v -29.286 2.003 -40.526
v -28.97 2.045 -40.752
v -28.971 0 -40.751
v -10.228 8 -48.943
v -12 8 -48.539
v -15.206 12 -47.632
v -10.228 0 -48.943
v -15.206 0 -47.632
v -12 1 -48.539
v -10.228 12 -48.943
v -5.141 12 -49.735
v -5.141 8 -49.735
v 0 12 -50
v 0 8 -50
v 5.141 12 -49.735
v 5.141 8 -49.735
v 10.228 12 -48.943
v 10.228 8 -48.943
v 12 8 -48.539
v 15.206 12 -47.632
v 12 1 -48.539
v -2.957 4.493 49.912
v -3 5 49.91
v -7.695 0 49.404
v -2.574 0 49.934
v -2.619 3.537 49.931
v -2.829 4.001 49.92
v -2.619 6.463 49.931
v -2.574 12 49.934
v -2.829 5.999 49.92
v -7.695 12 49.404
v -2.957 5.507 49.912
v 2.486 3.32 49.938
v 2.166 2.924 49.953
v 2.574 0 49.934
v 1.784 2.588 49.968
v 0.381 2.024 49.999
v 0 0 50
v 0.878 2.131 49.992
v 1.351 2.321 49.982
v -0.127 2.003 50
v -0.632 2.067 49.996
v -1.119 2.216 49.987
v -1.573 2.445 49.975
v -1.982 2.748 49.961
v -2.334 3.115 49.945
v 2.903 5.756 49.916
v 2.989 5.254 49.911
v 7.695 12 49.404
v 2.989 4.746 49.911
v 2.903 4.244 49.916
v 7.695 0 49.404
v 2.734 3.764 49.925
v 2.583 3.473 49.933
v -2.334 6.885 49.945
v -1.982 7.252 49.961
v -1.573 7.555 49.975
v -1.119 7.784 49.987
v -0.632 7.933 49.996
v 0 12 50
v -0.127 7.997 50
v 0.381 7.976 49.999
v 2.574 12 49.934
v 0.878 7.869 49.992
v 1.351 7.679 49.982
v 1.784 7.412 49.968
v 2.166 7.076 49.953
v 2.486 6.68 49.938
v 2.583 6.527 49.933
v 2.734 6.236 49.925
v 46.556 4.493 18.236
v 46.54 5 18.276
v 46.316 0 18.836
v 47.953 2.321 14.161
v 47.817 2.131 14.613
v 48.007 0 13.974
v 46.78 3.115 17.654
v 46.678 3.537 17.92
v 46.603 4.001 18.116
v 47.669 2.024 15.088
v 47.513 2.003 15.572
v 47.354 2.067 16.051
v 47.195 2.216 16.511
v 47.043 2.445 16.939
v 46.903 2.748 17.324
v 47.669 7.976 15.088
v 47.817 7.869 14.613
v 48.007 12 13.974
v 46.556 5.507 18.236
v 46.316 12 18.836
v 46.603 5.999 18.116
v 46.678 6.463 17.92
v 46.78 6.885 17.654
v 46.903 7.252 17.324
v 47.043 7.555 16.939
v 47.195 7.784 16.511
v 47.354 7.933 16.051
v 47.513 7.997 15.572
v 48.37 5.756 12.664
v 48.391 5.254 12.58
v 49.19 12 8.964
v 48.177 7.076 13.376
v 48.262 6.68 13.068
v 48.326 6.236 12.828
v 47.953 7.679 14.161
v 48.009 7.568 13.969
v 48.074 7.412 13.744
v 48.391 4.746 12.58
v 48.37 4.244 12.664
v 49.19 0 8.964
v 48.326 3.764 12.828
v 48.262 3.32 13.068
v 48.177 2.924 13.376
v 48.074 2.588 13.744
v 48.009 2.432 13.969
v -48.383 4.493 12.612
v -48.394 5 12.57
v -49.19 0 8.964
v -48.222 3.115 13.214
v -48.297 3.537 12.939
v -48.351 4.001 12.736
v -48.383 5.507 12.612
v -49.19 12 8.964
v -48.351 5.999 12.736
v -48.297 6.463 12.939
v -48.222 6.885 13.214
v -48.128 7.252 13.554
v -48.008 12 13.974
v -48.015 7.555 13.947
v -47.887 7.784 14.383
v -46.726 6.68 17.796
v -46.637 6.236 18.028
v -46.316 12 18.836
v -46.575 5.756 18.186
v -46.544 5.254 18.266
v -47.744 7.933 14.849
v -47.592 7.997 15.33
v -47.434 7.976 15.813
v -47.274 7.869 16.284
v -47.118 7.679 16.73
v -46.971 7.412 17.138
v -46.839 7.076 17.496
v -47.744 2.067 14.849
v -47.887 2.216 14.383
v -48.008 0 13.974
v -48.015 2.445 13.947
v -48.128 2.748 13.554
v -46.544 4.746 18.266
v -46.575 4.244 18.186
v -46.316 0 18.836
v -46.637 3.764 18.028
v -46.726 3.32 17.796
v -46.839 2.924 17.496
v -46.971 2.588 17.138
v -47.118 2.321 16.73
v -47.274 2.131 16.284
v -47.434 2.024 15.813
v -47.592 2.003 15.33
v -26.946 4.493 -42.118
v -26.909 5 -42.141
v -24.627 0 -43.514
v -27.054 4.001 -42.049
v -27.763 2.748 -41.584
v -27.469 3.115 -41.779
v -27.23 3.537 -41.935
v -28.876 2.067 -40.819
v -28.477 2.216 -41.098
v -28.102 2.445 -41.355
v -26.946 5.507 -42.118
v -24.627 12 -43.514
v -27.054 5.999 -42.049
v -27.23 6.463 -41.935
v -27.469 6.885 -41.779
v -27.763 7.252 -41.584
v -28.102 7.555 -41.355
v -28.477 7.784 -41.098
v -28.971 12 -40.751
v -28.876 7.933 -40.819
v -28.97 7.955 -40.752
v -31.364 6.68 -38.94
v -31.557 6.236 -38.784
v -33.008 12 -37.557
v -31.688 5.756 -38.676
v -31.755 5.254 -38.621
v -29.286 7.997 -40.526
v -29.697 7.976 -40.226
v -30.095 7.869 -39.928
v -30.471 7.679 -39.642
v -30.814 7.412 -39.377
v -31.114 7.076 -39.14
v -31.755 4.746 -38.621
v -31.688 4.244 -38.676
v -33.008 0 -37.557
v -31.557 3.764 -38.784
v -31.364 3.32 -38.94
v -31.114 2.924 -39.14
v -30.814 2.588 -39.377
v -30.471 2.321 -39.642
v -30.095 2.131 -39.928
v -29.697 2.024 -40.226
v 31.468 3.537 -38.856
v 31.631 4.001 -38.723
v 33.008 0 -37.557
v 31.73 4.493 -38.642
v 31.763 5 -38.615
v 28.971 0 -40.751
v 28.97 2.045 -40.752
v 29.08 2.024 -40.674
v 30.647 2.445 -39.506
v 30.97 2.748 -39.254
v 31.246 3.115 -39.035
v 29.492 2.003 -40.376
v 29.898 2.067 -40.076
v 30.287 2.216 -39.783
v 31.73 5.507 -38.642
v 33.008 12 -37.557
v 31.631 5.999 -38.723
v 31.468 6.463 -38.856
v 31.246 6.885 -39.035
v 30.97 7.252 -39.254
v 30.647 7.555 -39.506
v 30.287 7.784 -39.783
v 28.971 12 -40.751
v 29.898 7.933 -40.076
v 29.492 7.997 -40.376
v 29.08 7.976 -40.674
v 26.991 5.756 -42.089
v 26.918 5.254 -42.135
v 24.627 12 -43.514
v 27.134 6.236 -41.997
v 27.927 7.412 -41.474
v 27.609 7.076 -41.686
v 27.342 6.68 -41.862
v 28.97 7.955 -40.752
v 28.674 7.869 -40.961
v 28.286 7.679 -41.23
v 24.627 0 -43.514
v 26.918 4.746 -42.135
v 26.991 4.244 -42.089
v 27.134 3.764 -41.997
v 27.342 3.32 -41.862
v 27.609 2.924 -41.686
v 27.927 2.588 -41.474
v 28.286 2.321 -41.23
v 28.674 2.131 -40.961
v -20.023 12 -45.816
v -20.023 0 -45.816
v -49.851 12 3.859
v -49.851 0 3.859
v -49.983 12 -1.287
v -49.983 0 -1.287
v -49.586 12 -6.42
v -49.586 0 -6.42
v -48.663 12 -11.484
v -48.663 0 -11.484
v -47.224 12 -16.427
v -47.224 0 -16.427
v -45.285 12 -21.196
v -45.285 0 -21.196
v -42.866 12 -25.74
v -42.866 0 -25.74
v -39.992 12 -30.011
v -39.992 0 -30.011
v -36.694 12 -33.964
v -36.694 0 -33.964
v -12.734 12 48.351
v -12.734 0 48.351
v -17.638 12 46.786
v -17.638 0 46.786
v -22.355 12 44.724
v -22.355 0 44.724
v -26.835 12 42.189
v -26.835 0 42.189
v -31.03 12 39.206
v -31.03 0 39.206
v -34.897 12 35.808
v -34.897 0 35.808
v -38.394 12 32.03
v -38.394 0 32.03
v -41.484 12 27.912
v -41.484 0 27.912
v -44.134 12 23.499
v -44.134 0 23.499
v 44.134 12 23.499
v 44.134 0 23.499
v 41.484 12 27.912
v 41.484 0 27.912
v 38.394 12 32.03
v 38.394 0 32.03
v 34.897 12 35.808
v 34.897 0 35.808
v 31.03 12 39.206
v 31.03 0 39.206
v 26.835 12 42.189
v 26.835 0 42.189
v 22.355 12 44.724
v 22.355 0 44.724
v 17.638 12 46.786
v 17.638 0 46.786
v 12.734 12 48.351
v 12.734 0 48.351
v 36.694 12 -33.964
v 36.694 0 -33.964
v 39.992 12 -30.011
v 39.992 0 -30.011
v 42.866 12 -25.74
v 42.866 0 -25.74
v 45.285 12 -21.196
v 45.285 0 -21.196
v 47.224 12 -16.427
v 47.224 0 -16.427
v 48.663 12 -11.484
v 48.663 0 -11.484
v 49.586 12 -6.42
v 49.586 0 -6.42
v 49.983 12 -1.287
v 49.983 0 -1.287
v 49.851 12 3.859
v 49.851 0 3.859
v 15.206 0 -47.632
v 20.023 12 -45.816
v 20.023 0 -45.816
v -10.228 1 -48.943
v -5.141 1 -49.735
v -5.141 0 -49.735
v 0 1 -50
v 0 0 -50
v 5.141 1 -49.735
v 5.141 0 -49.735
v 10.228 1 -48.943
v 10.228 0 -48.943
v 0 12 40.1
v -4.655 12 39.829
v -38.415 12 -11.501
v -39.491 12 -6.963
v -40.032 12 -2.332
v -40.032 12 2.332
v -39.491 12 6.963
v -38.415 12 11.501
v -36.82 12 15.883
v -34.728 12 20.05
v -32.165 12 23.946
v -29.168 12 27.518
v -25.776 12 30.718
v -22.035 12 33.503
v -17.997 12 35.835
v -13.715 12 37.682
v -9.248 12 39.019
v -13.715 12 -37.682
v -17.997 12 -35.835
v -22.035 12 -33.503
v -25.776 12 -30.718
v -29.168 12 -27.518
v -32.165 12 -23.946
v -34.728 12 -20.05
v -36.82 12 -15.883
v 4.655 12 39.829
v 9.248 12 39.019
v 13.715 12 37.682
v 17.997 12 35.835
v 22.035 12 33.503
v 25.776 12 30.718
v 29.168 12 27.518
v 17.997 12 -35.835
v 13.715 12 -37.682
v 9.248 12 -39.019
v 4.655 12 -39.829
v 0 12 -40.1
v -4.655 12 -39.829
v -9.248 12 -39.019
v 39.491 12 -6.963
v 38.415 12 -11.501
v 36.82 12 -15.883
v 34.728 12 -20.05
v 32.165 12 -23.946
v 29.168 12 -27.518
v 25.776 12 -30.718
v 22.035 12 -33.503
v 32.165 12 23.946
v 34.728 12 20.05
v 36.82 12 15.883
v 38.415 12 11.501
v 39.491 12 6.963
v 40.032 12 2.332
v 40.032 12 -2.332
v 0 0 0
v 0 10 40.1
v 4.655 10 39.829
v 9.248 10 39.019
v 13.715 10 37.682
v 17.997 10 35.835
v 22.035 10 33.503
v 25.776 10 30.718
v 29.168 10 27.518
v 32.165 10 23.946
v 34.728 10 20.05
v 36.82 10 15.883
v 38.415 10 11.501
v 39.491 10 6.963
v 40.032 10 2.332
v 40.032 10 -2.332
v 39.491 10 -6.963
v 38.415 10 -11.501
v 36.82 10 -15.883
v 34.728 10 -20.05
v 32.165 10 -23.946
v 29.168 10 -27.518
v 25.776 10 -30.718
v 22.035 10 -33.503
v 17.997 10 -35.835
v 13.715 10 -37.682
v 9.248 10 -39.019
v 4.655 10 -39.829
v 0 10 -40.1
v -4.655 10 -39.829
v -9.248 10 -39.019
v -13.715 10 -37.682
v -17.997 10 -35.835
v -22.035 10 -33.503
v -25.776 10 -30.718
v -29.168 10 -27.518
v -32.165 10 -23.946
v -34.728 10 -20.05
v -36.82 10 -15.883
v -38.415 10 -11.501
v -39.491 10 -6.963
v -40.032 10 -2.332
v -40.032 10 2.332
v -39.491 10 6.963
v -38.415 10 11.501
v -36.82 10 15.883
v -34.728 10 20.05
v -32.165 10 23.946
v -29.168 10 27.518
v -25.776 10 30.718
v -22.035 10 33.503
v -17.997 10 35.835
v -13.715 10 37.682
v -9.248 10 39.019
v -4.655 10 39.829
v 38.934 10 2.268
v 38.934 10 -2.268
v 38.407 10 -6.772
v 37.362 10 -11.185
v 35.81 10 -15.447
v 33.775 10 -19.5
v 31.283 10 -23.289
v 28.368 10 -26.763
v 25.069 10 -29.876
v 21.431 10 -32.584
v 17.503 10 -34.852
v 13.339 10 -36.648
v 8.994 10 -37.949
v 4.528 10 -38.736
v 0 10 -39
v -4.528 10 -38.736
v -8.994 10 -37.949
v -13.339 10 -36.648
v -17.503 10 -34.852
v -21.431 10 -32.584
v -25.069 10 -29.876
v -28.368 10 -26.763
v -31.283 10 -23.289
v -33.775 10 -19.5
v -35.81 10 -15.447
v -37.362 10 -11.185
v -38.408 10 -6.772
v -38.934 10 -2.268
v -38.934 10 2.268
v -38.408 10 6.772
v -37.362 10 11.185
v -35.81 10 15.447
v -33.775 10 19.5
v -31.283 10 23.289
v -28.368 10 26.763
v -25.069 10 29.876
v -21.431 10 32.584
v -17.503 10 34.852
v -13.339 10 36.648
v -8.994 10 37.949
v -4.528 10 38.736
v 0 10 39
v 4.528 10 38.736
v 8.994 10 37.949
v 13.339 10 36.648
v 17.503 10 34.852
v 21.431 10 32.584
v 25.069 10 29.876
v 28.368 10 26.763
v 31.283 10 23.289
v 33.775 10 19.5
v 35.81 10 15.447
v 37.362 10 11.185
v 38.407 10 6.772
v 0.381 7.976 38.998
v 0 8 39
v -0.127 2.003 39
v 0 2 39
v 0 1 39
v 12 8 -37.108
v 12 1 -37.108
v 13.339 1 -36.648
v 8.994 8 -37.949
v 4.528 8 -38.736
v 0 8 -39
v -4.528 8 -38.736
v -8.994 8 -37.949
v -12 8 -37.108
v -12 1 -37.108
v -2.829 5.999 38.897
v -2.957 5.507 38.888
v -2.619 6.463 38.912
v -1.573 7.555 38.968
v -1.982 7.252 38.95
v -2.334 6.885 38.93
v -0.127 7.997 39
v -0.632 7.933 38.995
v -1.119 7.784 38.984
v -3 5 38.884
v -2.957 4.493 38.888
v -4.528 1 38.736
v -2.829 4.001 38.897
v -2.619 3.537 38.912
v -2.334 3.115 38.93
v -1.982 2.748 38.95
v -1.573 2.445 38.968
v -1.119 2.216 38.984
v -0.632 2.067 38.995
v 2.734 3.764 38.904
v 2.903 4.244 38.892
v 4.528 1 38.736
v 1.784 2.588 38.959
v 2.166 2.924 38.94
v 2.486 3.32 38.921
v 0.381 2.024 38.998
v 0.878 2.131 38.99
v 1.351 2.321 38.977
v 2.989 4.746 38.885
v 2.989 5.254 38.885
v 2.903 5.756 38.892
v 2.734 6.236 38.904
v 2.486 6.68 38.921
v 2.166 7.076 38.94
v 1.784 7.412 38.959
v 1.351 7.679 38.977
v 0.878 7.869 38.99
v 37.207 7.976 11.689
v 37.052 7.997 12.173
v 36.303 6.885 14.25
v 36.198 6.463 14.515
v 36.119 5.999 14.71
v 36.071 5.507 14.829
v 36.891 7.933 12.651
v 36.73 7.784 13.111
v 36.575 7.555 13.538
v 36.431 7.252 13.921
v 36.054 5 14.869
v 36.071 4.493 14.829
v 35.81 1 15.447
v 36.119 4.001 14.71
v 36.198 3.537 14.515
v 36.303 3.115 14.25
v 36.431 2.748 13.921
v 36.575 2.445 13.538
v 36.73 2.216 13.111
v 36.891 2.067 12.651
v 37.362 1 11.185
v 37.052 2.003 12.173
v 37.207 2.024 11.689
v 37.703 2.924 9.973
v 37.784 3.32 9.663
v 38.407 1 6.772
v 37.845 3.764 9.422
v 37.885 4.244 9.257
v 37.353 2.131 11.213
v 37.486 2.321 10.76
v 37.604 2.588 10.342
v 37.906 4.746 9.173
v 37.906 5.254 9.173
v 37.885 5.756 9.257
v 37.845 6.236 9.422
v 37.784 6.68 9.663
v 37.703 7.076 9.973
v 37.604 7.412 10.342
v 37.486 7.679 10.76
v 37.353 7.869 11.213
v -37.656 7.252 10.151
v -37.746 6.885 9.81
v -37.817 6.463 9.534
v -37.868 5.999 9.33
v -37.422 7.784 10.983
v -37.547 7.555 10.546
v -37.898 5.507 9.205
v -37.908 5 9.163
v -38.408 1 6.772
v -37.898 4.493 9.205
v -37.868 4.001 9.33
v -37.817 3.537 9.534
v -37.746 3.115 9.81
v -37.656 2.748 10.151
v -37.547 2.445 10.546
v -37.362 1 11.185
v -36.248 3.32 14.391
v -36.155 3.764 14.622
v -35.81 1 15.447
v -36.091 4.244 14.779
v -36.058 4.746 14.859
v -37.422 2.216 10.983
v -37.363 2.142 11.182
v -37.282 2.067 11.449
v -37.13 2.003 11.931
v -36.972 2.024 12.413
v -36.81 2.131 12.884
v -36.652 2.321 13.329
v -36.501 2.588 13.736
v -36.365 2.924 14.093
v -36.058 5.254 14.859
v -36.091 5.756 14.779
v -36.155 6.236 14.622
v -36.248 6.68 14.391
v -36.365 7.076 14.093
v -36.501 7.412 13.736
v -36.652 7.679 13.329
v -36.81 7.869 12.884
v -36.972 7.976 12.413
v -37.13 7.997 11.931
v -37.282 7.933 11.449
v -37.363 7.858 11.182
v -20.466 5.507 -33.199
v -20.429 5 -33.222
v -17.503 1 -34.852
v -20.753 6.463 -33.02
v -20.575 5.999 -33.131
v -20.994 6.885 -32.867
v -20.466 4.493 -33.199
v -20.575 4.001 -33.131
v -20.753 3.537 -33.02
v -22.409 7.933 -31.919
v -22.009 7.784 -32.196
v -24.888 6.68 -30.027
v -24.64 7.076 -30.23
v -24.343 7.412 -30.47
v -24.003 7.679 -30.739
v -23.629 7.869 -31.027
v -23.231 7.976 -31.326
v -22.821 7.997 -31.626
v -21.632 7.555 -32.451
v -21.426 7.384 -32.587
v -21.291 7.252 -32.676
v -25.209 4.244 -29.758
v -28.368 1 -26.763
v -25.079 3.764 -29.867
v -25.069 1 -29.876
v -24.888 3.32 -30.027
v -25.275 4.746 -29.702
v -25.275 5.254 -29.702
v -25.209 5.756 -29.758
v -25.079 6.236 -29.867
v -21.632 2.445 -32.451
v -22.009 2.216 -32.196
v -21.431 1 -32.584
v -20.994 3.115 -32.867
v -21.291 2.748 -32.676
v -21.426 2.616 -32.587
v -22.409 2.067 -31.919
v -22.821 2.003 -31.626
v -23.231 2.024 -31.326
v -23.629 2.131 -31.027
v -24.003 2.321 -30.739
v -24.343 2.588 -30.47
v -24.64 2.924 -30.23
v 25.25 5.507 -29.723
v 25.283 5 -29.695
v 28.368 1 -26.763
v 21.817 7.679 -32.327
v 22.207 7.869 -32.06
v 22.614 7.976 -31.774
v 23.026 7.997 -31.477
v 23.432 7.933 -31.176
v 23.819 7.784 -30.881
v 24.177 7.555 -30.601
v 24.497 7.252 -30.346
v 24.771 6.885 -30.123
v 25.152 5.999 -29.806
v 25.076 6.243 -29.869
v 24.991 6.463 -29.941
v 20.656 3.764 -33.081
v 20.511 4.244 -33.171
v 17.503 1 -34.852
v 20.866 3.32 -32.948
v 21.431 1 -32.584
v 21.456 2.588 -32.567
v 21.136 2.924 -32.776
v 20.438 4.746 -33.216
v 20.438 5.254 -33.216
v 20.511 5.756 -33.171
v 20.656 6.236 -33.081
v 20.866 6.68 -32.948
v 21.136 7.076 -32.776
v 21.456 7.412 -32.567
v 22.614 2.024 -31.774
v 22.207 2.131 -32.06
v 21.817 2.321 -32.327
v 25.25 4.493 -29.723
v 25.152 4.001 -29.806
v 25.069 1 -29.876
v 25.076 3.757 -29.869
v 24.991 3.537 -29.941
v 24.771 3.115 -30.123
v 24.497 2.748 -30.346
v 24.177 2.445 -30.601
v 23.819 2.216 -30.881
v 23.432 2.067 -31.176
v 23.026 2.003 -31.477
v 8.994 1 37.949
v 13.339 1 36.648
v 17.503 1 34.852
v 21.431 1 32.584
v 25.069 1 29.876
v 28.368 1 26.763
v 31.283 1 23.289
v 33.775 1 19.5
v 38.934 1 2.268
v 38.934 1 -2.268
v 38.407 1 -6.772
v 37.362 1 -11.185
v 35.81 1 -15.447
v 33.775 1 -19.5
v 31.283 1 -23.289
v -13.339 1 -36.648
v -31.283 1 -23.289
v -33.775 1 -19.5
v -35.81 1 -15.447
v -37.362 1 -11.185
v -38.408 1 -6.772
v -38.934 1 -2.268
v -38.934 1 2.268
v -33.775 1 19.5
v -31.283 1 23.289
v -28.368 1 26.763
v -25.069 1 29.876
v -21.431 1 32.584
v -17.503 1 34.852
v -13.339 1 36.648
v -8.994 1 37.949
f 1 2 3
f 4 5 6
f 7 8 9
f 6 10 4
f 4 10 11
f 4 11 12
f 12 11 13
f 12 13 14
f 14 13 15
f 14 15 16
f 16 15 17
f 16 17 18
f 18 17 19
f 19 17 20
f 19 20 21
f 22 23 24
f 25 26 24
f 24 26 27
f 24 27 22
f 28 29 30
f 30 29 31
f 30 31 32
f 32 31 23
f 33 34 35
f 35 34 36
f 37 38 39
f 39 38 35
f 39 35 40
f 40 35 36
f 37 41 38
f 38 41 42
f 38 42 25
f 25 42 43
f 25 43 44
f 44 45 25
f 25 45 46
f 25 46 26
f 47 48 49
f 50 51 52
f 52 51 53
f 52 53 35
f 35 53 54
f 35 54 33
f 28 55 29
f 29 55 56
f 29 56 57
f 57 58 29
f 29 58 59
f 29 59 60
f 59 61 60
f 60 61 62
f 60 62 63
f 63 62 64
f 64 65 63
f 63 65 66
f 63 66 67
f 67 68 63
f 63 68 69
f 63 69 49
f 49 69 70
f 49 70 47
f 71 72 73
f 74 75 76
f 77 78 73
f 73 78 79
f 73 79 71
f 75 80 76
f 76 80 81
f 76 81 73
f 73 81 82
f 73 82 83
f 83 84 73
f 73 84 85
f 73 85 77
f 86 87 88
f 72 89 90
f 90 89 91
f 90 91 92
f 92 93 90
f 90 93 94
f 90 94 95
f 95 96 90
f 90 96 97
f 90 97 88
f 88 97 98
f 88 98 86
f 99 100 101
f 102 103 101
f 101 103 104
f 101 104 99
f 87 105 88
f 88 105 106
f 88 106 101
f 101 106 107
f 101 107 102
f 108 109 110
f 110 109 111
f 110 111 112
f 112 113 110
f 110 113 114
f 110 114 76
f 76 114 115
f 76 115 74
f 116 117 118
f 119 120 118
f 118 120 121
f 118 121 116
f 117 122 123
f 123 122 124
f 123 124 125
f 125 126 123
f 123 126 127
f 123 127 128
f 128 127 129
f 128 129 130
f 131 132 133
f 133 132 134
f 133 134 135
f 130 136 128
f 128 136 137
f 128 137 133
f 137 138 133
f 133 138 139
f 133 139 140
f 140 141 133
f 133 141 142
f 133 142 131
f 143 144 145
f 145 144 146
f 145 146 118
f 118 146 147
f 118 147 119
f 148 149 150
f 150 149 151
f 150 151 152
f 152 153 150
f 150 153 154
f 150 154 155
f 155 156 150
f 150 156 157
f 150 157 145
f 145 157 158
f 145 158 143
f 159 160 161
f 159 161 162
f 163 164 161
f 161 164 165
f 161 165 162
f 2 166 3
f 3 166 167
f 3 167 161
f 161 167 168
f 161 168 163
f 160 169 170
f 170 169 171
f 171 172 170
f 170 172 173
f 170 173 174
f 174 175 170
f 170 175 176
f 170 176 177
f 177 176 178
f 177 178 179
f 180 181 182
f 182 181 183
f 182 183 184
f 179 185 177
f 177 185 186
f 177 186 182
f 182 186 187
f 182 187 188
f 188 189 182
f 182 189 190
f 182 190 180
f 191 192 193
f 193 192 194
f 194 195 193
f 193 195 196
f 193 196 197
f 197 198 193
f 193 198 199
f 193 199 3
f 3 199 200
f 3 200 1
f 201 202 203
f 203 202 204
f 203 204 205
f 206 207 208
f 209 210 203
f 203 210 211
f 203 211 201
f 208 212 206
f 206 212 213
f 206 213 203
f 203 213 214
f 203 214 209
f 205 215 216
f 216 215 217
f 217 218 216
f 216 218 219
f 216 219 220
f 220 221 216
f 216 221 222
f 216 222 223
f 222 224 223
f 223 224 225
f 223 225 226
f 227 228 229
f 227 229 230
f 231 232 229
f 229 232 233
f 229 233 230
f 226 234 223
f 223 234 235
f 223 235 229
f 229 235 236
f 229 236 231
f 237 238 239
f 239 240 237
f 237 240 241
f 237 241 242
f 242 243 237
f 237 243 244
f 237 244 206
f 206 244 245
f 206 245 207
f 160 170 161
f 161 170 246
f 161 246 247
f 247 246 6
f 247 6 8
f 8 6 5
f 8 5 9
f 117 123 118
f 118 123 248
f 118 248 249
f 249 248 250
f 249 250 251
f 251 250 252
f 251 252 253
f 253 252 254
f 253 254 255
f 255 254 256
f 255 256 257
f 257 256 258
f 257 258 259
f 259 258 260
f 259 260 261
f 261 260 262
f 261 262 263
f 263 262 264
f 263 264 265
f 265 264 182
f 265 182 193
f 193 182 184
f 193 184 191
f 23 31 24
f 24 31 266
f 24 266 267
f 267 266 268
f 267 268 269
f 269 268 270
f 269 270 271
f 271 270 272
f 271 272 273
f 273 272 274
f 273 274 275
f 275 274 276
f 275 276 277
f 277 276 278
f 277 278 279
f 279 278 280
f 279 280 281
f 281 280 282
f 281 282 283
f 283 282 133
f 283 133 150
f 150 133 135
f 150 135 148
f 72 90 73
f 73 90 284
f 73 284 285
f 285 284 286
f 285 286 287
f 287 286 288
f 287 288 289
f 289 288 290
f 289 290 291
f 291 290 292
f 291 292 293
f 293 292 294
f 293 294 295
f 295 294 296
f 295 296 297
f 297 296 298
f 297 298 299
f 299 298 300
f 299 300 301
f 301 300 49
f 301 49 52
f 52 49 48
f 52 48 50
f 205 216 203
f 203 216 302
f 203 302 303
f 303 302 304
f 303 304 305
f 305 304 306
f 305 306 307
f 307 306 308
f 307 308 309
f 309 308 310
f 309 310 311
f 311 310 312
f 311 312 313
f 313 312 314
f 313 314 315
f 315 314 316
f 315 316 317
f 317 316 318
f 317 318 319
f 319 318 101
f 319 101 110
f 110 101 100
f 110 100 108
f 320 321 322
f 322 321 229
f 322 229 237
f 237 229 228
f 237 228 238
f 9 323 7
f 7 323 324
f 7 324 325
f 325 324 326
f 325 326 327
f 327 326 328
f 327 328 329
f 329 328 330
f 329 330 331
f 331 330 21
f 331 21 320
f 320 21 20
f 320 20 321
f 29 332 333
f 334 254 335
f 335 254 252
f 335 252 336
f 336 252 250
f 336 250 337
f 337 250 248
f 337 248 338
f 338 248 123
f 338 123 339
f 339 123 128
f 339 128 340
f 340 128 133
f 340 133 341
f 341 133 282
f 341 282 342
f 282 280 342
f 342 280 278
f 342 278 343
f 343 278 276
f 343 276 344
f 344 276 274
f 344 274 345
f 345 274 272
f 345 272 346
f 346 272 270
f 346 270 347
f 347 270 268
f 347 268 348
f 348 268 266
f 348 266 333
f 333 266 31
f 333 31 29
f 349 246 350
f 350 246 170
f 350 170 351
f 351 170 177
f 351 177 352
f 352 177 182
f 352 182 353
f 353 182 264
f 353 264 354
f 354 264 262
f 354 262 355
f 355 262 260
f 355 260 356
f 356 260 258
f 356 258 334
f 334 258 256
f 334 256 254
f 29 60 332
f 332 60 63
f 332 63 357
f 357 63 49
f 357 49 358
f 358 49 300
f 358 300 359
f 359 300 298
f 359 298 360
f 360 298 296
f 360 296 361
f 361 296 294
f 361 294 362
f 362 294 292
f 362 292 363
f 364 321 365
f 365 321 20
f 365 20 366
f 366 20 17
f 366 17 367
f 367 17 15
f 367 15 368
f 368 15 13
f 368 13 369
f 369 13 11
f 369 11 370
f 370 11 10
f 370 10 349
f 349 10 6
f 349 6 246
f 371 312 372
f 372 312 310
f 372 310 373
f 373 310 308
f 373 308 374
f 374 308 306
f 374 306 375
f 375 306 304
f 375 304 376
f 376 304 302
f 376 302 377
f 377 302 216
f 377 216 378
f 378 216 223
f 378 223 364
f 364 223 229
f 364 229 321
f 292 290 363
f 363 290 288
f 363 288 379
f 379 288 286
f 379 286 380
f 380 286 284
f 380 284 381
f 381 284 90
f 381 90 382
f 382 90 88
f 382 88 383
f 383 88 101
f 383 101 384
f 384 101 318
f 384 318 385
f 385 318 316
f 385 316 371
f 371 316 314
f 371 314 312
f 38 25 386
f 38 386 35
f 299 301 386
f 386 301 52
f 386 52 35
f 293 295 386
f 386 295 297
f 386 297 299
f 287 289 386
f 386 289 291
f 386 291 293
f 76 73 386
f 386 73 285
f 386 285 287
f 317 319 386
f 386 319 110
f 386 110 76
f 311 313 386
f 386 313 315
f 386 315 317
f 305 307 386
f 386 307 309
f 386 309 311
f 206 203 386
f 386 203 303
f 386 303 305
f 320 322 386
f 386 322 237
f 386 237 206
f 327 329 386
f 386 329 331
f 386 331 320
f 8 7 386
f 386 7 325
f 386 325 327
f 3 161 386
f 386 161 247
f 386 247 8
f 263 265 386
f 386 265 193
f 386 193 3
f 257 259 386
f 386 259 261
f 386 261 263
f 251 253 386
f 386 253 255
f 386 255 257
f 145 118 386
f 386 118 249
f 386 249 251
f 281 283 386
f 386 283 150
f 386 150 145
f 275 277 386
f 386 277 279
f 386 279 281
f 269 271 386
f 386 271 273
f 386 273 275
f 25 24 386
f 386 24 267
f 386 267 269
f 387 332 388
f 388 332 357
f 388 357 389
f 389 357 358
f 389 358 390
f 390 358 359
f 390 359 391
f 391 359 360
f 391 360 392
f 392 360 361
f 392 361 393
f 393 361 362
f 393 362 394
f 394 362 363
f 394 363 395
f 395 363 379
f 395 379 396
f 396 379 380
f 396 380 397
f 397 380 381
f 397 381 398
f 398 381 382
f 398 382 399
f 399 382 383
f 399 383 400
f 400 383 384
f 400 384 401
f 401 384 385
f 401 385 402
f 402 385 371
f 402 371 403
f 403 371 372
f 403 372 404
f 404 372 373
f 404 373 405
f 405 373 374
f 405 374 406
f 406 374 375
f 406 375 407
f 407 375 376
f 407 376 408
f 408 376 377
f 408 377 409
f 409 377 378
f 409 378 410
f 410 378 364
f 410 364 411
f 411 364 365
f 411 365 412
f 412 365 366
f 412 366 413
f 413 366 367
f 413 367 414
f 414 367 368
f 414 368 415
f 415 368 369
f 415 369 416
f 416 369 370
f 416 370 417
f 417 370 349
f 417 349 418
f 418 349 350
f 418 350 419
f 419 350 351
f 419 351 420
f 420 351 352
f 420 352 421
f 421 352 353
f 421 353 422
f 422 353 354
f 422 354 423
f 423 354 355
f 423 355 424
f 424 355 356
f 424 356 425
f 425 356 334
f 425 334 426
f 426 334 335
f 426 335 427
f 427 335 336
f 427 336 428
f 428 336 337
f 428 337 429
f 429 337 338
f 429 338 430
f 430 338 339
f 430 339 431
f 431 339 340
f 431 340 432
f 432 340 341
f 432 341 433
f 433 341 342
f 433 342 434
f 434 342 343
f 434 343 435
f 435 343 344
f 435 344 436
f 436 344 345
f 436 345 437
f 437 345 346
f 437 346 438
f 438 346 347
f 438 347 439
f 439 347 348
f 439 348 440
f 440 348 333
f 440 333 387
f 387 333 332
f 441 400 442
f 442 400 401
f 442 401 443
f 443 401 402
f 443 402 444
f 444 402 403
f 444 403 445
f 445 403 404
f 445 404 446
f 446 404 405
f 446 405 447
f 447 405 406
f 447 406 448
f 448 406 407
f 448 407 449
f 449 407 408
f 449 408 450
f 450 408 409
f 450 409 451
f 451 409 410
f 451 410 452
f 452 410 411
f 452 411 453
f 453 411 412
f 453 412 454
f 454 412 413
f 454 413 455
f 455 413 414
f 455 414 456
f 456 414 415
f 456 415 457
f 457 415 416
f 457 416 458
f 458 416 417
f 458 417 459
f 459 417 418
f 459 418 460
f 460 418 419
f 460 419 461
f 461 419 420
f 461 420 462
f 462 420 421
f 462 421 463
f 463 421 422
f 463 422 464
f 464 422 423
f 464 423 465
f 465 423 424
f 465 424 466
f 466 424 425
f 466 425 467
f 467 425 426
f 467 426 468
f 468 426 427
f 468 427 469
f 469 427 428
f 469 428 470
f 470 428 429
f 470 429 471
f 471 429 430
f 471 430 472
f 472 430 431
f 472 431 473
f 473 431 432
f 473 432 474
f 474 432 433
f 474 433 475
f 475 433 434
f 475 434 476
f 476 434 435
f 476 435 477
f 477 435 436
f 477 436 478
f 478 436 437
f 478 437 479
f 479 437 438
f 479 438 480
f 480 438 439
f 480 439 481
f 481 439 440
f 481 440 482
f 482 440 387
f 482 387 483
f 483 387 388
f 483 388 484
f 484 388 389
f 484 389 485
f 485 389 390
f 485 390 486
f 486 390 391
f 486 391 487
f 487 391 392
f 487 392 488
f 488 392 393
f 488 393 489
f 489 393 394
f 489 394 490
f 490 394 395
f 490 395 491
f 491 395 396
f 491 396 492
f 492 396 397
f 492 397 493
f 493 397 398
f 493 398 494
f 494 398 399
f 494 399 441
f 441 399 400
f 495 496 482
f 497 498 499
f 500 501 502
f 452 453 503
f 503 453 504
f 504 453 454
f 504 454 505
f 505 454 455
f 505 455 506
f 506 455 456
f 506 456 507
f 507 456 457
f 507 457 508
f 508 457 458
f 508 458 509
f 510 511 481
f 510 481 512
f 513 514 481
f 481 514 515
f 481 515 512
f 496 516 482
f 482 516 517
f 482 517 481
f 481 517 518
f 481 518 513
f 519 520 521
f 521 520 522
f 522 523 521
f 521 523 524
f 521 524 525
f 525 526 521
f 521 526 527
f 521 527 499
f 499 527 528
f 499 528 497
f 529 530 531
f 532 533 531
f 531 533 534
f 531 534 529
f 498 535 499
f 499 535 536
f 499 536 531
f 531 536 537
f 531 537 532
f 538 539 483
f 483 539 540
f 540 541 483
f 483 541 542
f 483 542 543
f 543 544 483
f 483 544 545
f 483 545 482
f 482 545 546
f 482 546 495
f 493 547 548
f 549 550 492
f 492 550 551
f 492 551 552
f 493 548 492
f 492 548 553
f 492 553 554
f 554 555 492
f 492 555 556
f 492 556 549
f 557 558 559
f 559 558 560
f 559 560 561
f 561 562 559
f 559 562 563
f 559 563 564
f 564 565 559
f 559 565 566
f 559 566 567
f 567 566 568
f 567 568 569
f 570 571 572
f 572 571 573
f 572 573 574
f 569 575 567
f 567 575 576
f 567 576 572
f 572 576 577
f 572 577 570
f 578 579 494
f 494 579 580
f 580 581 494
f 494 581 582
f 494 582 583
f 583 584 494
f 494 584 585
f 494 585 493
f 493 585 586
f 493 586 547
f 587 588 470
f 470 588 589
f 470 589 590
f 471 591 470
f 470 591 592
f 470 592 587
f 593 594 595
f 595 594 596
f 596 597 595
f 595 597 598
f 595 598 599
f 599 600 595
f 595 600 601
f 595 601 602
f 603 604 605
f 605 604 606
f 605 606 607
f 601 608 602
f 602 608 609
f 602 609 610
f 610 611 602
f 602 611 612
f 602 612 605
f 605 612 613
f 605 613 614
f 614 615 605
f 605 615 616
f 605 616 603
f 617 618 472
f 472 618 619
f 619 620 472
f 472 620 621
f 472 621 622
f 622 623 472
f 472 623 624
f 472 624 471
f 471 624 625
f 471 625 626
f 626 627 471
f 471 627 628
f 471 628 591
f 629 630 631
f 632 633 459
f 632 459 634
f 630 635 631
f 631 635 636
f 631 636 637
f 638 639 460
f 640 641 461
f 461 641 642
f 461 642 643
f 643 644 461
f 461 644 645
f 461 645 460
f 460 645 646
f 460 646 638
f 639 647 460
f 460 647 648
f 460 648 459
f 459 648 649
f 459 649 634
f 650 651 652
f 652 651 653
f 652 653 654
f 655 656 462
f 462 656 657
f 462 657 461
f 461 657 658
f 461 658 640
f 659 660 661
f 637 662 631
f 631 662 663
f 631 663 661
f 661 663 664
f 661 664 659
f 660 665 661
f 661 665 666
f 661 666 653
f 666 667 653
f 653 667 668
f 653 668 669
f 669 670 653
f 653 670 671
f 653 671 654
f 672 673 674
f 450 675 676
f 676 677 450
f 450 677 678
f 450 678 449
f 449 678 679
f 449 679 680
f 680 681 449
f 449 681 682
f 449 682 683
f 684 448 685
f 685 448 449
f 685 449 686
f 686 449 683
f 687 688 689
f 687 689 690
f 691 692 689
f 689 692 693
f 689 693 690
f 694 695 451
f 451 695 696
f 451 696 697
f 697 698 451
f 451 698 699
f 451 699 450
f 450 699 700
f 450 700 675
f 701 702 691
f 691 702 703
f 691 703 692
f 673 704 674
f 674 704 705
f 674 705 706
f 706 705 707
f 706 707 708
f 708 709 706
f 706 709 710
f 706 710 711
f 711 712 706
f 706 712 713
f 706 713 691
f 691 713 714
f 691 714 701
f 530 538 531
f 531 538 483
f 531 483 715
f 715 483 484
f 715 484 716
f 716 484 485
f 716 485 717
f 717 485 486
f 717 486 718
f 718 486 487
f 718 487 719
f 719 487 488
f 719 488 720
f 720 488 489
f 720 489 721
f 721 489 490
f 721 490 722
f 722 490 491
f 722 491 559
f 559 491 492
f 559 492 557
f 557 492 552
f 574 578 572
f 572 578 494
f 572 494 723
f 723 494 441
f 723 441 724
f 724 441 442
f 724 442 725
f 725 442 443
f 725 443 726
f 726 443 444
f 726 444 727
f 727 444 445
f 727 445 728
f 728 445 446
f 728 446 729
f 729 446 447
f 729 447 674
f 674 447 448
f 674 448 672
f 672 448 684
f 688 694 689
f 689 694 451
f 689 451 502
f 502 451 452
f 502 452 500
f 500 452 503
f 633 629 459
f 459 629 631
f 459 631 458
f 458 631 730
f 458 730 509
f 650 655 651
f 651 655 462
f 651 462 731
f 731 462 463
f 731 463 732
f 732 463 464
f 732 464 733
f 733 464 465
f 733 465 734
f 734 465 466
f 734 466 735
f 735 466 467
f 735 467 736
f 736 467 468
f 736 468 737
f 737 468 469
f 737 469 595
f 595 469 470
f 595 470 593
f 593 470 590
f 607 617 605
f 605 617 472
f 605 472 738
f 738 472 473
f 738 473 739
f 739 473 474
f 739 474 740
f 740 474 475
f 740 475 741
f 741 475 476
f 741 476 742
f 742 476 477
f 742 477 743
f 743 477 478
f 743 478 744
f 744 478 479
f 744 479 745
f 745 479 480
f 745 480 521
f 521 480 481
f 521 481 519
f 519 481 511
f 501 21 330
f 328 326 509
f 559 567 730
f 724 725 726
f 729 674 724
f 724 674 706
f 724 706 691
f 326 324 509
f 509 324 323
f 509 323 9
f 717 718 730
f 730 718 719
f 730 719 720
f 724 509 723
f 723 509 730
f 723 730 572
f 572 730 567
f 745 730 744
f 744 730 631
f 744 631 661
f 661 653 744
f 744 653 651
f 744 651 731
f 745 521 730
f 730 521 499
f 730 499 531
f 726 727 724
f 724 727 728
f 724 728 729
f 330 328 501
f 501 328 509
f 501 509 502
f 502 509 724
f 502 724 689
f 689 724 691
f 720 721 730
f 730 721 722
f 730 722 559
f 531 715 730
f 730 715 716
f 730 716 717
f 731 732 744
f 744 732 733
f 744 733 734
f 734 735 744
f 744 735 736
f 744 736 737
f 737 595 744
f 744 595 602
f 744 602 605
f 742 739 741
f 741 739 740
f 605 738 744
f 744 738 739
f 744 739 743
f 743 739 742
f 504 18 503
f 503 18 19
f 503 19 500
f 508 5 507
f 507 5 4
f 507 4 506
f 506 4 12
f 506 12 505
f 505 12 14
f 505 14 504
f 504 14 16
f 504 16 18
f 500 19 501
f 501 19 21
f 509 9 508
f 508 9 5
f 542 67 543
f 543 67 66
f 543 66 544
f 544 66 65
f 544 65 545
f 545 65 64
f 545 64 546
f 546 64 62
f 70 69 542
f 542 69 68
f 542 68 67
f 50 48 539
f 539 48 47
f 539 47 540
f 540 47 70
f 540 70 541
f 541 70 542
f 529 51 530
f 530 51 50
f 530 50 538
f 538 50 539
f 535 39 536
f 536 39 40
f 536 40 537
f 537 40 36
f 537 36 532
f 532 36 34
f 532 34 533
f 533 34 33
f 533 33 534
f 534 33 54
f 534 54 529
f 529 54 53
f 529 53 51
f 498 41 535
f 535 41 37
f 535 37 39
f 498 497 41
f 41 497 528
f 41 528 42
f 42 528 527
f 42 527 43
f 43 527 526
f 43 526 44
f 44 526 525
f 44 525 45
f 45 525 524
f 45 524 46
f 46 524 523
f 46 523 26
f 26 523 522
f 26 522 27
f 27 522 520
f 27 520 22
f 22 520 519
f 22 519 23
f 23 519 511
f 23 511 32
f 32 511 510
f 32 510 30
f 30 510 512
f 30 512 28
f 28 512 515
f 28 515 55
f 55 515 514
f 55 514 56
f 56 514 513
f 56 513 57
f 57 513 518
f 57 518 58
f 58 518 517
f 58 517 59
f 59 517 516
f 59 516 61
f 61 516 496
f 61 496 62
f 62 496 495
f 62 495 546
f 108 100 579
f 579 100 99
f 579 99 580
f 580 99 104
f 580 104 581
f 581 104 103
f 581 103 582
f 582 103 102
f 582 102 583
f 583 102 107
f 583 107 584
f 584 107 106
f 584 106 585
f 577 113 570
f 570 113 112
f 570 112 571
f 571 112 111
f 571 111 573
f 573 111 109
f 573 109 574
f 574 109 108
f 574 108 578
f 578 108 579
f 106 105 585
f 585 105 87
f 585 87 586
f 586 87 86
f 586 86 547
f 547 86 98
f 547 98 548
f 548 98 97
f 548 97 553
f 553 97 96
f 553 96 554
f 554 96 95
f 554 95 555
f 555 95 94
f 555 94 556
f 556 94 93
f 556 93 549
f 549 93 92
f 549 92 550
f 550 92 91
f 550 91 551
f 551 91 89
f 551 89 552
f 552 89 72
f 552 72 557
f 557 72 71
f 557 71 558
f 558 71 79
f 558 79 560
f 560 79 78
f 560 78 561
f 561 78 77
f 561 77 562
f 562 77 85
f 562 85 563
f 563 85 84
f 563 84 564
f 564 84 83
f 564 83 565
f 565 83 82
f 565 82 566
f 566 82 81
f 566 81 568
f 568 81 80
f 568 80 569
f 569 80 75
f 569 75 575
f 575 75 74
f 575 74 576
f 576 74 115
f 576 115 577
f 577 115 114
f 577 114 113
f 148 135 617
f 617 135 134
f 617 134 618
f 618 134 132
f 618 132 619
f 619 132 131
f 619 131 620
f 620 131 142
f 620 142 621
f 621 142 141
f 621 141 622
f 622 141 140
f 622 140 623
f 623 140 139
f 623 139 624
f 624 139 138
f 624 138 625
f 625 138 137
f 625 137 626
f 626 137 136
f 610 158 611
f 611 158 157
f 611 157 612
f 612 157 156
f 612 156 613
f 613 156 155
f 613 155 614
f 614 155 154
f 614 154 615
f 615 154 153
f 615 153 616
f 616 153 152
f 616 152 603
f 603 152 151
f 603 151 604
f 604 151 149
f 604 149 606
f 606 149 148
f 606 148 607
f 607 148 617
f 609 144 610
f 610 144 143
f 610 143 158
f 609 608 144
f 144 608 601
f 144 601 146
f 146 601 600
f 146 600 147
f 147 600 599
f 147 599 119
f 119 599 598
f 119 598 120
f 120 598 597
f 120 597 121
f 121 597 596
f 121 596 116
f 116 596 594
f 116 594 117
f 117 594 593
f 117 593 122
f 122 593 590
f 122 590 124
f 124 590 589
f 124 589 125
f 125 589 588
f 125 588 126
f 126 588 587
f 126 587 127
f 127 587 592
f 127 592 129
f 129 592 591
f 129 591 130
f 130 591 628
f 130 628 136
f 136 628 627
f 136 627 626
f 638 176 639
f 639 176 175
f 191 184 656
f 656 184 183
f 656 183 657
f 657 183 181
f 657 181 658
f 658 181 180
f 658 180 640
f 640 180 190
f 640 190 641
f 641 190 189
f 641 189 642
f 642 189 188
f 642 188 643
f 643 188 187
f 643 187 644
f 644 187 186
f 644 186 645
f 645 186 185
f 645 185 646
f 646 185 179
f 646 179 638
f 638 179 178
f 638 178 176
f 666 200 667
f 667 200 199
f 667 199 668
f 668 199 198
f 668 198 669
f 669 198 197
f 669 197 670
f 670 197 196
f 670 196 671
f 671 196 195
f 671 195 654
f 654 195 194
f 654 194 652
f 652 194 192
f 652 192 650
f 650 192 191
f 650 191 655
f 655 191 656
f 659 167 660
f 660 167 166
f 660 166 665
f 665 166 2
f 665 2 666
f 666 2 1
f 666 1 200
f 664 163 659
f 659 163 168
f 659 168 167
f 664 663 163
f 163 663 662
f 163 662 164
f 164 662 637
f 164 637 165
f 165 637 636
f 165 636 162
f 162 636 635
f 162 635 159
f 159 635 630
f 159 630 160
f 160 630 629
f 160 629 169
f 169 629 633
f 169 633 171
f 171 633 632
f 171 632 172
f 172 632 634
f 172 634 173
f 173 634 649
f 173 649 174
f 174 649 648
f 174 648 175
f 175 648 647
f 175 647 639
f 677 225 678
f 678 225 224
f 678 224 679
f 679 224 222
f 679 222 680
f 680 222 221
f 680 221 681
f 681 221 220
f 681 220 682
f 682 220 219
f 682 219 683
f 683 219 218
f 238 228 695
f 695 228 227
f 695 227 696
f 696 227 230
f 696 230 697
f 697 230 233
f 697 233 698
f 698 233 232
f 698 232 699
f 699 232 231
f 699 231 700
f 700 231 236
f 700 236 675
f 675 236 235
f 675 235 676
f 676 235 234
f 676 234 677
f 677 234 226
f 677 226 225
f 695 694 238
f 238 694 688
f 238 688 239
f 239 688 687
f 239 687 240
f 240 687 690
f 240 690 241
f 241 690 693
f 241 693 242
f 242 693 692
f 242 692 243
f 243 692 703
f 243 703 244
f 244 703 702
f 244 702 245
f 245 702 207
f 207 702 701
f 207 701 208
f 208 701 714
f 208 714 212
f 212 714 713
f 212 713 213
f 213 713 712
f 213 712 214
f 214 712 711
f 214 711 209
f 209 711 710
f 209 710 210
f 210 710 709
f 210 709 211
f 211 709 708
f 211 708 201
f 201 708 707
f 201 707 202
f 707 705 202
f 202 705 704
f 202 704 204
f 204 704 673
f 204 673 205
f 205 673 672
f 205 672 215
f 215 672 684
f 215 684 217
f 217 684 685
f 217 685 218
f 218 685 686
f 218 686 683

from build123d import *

# Parameters (mm, degrees)
SKETCH1_R           = 50
BOSS_EXTRUDE1_DEPTH = 12
SKETCH3_R           = 40.1
CUT_EXTRUDE1_DEPTH  = 2
SKETCH4_R           = 39
CUT_EXTRUDE2_DEPTH  = 9
SKETCH6_W           = 24
SKETCH6_H           = 7
CUT_EXTRUDE4_DEPTH  = 61
SKETCH7_R           = 3
CUT_EXTRUDE5_DEPTH  = 61
CIRPATTERN1_COUNT   = 5


with BuildPart() as part:
    # Sketch1 → Boss-Extrude1 (new body)
    with BuildSketch(Plane(origin=(0, 0, 0), x_dir=(1, 0, 0), z_dir=(0, 1, 0))):
        with Locations(Location((0, 0, 0), (0, 0, 270))):
            Circle(SKETCH1_R)
    extrude(amount=BOSS_EXTRUDE1_DEPTH)

    # Sketch3 → Cut-Extrude1 (cut)
    with BuildSketch(Plane(origin=(0, 12, 0), x_dir=(1, 0, 0), z_dir=(0, 1, 0))):
        with Locations(Location((0, 0, 0), (0, 0, 270))):
            Circle(SKETCH3_R)
    extrude(amount=-CUT_EXTRUDE1_DEPTH, mode=Mode.SUBTRACT)

    # Sketch4 → Cut-Extrude2 (cut)
    with BuildSketch(Plane(origin=(0, 10, 0), x_dir=(1, 0, 0), z_dir=(0, 1, 0))):
        with Locations(Location((0, 0, 0), (0, 0, 270))):
            Circle(SKETCH4_R)
    extrude(amount=-CUT_EXTRUDE2_DEPTH, mode=Mode.SUBTRACT)

    # Sketch6 → Cut-Extrude4 (cut)
    with BuildSketch(Plane.XY):
        with Locations((0, 4.5)):
            Rectangle(SKETCH6_W, SKETCH6_H)
    extrude(amount=-CUT_EXTRUDE4_DEPTH, mode=Mode.SUBTRACT)

    # Sketch7 → Cut-Extrude5 (cut)
    with BuildSketch(Plane.YX):
        with Locations((5, 0)):
            Circle(SKETCH7_R)
    cut_extrude5 = extrude(amount=-CUT_EXTRUDE5_DEPTH, mode=Mode.SUBTRACT)

    # CirPattern1: Cut-Extrude5 ×5 about axis
    cirpattern1_axis = Axis((0, -0.6, 0), (0, 1, 0))
    for i in range(1, CIRPATTERN1_COUNT):
        add(cut_extrude5.rotate(cirpattern1_axis, i * 360 / CIRPATTERN1_COUNT), mode=Mode.SUBTRACT)


solid = part.part
